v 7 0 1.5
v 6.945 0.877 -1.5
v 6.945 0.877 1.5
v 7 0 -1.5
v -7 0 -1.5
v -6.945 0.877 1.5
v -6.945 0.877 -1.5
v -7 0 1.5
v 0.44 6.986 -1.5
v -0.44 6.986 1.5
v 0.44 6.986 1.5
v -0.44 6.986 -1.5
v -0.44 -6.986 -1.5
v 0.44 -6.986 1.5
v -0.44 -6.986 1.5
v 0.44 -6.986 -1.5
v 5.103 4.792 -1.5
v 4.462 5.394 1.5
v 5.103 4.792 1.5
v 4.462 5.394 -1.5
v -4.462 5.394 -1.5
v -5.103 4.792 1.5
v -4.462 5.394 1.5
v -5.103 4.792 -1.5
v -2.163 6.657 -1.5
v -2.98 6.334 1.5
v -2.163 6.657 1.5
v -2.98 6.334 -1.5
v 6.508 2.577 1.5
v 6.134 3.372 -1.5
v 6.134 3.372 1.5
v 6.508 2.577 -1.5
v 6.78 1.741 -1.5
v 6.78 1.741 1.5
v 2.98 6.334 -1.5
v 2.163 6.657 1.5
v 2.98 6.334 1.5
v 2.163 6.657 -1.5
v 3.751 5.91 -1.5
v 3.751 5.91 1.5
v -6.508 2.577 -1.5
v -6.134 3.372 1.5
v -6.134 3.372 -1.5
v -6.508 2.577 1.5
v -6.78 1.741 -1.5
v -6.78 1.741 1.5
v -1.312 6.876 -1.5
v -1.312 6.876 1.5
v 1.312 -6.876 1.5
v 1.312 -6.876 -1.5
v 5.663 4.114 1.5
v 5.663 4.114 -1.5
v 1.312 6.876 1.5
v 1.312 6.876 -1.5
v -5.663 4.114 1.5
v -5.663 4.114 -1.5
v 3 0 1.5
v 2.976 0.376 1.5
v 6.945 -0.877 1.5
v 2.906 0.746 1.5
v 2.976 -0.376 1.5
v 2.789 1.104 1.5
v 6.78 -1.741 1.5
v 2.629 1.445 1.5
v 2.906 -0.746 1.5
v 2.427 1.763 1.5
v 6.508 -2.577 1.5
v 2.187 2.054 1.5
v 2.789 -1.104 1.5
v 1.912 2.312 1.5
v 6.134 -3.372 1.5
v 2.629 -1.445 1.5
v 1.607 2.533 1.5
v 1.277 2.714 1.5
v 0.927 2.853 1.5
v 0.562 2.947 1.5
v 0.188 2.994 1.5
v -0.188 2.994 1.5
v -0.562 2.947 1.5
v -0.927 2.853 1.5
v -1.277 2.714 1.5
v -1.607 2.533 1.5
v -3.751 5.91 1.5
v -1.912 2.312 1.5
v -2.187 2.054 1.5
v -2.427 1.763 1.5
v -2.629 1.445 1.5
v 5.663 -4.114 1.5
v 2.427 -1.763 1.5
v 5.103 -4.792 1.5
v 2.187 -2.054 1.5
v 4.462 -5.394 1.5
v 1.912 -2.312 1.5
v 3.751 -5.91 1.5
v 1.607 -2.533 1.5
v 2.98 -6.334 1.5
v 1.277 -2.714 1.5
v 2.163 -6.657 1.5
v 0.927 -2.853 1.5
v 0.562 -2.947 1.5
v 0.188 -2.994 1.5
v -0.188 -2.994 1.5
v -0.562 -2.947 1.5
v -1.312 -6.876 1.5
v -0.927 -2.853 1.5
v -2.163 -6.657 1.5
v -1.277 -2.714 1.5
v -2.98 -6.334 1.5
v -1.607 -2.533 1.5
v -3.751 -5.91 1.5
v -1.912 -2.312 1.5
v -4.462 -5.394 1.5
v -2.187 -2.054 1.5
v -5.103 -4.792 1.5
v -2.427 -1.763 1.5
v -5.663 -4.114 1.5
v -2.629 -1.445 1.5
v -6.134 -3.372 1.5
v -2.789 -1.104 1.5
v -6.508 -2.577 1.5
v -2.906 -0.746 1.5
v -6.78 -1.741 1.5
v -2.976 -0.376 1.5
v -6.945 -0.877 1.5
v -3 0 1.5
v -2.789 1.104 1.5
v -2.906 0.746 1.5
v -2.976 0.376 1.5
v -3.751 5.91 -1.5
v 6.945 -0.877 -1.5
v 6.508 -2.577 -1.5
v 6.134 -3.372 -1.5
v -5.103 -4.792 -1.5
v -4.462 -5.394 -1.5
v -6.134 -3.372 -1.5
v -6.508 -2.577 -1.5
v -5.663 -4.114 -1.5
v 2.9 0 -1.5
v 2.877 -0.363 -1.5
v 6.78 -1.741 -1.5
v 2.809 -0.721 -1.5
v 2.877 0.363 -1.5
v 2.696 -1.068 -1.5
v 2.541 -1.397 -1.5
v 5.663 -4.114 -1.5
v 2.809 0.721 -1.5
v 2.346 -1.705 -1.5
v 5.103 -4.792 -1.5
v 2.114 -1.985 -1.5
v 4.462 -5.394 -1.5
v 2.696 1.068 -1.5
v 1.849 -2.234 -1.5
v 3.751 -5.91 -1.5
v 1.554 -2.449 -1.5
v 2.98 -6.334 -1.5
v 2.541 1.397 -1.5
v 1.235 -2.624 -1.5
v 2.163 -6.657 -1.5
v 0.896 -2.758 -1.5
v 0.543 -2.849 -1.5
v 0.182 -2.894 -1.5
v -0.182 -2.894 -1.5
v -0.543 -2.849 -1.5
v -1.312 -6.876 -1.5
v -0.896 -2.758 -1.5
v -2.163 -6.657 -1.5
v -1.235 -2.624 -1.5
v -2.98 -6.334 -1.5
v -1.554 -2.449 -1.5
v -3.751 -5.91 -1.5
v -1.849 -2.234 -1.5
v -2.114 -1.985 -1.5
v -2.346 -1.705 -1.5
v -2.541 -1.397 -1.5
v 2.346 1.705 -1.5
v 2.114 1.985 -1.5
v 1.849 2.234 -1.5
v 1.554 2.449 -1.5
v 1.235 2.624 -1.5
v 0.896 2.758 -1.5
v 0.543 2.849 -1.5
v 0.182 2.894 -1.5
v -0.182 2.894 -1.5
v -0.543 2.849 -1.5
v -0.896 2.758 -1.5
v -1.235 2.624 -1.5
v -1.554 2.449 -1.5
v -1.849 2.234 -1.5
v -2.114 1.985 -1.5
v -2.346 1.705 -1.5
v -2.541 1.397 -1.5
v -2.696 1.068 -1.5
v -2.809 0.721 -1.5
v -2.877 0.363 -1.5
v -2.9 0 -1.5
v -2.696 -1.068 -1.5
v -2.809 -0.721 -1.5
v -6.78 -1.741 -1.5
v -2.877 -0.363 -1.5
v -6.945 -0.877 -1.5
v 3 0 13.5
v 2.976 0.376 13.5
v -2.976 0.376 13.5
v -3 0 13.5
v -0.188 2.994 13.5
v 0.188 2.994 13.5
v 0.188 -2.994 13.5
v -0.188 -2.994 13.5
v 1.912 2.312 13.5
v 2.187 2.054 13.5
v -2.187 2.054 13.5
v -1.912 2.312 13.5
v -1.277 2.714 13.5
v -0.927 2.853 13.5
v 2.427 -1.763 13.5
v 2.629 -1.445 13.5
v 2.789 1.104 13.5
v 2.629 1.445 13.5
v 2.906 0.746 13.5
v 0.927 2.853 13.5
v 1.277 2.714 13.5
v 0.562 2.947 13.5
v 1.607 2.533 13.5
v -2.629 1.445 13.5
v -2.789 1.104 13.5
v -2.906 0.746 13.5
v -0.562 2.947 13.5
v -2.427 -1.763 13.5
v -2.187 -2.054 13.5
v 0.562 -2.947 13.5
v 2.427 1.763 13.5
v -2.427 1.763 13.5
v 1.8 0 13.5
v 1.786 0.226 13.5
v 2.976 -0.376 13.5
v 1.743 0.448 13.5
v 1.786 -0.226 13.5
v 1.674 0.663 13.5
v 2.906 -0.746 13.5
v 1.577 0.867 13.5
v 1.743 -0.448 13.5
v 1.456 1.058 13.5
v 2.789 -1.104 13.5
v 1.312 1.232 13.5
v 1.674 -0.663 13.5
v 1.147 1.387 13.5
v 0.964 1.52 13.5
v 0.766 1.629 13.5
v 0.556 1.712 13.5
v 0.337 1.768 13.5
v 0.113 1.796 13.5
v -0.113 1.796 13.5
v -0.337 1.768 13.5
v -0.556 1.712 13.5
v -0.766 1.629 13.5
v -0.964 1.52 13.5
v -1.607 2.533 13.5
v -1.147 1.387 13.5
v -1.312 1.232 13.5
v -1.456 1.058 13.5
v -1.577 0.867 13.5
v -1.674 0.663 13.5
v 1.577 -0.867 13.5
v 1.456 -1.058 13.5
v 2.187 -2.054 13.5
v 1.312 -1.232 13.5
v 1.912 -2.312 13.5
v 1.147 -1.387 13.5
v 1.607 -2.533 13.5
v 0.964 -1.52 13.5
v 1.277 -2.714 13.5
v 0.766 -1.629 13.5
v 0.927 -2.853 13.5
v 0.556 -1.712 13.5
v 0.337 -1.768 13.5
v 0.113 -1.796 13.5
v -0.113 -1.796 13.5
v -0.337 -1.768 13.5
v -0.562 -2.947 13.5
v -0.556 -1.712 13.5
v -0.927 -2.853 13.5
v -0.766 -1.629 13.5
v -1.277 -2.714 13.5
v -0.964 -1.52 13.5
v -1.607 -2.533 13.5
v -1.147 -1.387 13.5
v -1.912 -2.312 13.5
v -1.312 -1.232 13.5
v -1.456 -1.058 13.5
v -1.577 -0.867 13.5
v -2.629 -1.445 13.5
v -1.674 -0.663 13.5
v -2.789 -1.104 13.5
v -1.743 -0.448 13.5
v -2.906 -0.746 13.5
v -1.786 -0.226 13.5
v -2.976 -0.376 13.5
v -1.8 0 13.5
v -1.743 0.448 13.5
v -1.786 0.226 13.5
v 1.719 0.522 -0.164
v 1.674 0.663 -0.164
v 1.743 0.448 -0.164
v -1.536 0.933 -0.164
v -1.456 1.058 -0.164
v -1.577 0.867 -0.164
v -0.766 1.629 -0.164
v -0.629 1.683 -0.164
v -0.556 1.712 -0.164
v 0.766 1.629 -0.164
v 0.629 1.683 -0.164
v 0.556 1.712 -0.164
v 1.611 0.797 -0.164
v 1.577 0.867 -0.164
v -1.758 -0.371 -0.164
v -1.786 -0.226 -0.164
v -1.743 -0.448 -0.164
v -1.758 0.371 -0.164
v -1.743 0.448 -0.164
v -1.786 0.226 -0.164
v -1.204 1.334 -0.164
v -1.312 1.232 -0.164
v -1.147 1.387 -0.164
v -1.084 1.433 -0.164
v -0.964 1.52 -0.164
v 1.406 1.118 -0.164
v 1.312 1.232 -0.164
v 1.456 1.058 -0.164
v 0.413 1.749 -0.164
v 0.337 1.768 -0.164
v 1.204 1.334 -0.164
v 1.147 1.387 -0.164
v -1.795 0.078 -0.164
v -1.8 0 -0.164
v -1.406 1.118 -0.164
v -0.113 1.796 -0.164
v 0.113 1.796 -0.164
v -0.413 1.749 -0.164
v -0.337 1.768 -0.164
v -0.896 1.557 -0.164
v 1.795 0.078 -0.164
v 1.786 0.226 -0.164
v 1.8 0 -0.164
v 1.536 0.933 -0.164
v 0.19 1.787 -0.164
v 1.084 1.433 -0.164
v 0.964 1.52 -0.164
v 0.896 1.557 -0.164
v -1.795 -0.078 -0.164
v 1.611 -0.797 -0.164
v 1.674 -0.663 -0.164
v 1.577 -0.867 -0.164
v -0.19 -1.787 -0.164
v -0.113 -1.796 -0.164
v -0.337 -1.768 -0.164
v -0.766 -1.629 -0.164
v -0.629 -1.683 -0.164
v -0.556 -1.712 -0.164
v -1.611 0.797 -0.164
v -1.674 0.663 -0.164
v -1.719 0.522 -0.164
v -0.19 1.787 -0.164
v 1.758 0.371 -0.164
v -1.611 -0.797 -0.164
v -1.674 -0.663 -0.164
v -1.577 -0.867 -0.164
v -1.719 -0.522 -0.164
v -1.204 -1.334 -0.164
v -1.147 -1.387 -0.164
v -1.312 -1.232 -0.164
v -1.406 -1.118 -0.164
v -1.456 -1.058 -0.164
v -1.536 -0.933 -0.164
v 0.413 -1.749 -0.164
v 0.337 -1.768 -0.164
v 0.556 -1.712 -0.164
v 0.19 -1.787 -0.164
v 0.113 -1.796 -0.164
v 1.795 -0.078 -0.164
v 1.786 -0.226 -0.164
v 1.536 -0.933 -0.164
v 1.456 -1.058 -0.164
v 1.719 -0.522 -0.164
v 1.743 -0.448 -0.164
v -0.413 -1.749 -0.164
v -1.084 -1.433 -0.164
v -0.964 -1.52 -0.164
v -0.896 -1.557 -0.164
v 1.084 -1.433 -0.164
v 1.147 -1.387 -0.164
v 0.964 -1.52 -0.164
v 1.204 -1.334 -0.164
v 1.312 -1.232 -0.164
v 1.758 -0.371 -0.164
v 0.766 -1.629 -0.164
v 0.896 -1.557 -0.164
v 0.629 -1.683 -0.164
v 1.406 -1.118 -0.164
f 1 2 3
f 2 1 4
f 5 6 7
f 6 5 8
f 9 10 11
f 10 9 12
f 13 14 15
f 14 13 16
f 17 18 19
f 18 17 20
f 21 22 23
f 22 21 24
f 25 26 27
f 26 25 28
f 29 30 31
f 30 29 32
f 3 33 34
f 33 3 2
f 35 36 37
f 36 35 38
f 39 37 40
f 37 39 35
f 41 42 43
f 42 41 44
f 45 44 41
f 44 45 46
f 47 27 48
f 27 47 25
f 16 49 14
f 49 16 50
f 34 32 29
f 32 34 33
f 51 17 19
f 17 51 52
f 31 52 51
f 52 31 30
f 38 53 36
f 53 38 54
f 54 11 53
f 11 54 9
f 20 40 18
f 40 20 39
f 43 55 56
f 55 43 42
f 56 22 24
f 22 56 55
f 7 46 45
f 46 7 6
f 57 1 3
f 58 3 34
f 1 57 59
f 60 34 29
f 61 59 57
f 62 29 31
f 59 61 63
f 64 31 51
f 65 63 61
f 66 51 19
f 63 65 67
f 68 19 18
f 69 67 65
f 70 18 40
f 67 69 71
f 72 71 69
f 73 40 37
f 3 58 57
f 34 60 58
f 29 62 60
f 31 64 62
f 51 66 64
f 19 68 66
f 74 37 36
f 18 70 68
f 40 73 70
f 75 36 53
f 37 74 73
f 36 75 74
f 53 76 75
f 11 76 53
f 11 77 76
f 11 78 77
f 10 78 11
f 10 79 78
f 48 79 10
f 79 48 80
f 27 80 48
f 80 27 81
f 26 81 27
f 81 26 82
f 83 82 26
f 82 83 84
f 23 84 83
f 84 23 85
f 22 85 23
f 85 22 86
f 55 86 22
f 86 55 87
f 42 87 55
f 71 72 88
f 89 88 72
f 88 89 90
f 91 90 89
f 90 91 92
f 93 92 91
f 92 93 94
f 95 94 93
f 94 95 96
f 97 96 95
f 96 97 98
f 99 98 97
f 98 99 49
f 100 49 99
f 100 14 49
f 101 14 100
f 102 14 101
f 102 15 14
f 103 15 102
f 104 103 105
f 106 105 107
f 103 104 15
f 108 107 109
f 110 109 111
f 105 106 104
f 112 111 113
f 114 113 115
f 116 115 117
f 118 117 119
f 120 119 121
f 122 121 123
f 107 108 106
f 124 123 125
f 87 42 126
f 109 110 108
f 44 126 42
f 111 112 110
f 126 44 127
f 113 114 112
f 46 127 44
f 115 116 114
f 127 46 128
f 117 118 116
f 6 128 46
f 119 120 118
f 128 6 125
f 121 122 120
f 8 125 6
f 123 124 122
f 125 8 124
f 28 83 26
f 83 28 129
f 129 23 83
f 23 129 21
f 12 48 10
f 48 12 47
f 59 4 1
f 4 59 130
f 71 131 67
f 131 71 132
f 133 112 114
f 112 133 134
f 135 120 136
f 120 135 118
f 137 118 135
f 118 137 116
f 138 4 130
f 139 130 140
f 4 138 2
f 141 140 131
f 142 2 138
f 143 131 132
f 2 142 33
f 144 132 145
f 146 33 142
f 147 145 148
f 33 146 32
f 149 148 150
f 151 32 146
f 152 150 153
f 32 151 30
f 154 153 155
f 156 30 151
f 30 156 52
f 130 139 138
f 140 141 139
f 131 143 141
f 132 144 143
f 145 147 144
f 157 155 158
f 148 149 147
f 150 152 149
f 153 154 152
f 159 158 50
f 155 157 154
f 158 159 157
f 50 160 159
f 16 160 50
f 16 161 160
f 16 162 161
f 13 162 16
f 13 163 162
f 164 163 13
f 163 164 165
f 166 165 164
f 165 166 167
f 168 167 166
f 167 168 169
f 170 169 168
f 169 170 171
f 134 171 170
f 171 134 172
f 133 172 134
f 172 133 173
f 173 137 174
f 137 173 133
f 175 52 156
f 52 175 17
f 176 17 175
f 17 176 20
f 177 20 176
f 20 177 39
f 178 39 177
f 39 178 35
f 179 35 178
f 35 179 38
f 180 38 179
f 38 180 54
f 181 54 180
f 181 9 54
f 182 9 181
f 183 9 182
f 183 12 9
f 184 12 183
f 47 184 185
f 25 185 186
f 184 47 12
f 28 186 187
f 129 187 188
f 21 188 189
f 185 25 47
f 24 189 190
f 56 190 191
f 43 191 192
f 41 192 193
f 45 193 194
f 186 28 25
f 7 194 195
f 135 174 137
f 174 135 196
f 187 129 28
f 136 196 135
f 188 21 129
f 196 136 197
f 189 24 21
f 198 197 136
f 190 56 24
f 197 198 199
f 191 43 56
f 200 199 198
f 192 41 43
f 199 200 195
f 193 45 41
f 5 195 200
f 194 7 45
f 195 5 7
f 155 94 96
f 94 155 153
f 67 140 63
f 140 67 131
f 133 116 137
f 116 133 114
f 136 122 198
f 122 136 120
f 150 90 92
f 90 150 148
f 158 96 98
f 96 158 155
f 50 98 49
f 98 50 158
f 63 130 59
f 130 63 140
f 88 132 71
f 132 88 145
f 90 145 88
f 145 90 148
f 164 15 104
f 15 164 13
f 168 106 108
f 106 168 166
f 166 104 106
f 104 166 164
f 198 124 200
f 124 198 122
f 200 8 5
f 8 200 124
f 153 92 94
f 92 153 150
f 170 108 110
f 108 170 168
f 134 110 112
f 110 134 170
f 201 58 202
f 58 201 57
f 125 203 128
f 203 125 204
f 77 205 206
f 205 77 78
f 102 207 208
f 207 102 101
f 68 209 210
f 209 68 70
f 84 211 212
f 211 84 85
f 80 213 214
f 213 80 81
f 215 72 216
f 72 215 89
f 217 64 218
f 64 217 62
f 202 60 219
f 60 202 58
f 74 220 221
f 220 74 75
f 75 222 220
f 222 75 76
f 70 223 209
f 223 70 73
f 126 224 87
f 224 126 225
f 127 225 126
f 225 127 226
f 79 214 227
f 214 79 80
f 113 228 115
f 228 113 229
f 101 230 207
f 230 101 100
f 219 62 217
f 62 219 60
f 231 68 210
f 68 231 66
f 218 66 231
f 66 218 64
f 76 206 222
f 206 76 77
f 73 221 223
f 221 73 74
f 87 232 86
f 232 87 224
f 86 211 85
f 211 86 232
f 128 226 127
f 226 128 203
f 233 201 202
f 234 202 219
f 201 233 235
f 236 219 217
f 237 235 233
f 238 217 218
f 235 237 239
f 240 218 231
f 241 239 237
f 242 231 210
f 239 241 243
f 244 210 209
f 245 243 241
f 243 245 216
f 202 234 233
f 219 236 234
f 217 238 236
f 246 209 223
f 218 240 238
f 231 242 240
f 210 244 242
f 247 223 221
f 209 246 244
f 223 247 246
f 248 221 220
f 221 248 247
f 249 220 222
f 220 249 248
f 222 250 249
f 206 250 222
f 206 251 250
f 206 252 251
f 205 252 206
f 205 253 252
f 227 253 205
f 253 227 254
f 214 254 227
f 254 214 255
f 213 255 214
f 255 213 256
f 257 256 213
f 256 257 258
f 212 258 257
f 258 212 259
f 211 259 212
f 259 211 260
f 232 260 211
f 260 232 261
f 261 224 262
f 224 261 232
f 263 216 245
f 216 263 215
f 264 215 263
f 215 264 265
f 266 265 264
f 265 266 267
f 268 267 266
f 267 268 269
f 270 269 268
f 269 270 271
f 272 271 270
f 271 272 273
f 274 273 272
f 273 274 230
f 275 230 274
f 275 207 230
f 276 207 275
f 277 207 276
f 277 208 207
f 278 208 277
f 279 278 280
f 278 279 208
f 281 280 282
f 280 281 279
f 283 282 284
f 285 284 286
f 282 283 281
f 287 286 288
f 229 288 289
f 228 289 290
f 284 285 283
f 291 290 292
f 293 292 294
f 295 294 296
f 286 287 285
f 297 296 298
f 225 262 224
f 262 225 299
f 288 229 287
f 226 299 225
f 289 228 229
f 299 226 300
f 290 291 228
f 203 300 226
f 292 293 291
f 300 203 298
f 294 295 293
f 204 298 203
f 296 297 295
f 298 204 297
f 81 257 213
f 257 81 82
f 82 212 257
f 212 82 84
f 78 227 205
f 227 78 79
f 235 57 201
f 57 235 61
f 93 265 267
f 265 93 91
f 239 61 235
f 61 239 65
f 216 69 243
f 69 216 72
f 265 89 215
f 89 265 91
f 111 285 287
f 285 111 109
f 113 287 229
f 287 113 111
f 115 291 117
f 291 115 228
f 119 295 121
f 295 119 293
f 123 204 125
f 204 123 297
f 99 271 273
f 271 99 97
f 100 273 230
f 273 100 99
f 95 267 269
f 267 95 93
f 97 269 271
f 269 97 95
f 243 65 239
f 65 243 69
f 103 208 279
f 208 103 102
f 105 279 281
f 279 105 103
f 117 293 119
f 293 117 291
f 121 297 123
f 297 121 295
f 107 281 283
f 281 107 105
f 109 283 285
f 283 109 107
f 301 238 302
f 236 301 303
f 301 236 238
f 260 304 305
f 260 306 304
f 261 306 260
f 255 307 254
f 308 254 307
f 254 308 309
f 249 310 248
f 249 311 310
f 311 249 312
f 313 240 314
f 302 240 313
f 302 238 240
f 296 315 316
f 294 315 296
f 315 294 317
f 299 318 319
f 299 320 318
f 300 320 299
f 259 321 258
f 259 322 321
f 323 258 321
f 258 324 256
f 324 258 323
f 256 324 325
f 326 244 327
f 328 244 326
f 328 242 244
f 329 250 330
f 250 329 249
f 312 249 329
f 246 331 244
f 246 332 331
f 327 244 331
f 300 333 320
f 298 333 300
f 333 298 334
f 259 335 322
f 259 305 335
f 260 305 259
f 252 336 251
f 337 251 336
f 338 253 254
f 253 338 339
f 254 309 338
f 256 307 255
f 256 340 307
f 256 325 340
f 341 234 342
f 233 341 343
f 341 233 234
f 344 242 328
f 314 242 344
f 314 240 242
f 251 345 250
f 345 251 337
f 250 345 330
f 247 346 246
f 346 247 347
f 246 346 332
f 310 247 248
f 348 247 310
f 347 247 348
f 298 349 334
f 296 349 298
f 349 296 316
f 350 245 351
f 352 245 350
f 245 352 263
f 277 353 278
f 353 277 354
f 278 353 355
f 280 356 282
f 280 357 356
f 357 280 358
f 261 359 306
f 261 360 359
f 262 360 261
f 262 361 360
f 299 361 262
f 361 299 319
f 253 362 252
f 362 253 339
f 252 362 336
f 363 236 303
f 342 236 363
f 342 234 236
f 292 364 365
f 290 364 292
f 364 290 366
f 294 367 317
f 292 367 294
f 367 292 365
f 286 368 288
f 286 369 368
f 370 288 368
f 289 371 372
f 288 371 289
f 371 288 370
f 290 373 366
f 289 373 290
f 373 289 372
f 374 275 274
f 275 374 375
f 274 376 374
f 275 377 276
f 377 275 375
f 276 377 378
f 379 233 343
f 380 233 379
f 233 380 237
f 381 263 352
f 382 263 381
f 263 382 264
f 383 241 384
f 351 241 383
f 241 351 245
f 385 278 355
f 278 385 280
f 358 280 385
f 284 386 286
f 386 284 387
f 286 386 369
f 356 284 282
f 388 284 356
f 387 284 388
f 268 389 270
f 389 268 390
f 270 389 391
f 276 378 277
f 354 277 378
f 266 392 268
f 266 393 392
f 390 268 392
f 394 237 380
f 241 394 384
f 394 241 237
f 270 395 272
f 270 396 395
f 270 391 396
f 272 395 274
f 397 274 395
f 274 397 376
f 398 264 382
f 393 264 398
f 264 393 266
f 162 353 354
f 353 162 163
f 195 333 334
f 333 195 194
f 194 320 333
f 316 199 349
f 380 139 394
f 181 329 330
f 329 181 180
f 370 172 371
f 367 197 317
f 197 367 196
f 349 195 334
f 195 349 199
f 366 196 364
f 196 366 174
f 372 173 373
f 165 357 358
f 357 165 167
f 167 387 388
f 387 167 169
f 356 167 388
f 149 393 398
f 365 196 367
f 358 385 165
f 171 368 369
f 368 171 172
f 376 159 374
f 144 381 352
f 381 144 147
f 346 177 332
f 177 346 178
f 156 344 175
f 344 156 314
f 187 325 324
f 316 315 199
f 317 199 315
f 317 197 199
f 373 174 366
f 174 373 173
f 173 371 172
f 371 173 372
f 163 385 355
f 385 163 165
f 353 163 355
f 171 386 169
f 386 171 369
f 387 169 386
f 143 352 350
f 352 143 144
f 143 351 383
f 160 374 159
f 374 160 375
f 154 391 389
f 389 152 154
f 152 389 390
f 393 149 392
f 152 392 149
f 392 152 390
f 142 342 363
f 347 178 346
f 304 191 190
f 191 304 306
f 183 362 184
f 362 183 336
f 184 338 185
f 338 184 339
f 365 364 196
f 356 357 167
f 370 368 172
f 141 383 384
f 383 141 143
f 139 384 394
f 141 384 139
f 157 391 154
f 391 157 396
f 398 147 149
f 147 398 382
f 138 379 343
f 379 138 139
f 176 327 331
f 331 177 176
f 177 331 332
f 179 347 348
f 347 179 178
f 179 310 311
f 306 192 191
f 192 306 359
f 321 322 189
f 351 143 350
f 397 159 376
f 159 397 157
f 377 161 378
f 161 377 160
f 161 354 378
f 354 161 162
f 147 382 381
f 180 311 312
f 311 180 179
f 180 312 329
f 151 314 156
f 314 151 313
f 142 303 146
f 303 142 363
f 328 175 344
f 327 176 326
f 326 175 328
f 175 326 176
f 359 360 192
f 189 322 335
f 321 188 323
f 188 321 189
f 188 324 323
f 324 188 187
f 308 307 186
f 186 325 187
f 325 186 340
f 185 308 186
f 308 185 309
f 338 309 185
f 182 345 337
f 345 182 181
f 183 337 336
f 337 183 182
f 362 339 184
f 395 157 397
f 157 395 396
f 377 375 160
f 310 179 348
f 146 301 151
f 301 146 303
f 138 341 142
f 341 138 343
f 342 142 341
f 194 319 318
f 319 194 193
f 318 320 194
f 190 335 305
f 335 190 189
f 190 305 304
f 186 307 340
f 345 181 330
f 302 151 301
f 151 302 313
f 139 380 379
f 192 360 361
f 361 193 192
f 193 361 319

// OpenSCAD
$fn = 50;


difference() {
	union() {
		translate(v = [0, 0, -1.5000000000]) {
			cylinder(h = 3, r = 7.0000000000);
		}
		translate(v = [0, 0, -1.5000000000]) {
			cylinder(h = 15, r = 3.0000000000);
		}
	}
	union() {
		translate(v = [0, 0, -1.5000000000]) {
			rotate(a = [0, 180, 0]) {
				difference() {
					union() {
						translate(v = [0, 0, -15.0000000000]) {
							cylinder(h = 15, r = 1.5000000000);
						}
						translate(v = [0, 0, -15.0000000000]) {
							cylinder(h = 15, r = 1.8000000000);
						}
						translate(v = [0, 0, -1.7000000000]) {
							cylinder(h = 1.7000000000, r1 = 1.5000000000, r2 = 2.9000000000);
						}
						translate(v = [0, 0, -15.0000000000]) {
							cylinder(h = 15, r = 1.5000000000);
						}
					}
					union();
				}
			}
		}
		translate(v = [0, 0, -50.0000000000]) {
			cylinder(h = 100, r = 1.5000000000);
		}
	}
}
